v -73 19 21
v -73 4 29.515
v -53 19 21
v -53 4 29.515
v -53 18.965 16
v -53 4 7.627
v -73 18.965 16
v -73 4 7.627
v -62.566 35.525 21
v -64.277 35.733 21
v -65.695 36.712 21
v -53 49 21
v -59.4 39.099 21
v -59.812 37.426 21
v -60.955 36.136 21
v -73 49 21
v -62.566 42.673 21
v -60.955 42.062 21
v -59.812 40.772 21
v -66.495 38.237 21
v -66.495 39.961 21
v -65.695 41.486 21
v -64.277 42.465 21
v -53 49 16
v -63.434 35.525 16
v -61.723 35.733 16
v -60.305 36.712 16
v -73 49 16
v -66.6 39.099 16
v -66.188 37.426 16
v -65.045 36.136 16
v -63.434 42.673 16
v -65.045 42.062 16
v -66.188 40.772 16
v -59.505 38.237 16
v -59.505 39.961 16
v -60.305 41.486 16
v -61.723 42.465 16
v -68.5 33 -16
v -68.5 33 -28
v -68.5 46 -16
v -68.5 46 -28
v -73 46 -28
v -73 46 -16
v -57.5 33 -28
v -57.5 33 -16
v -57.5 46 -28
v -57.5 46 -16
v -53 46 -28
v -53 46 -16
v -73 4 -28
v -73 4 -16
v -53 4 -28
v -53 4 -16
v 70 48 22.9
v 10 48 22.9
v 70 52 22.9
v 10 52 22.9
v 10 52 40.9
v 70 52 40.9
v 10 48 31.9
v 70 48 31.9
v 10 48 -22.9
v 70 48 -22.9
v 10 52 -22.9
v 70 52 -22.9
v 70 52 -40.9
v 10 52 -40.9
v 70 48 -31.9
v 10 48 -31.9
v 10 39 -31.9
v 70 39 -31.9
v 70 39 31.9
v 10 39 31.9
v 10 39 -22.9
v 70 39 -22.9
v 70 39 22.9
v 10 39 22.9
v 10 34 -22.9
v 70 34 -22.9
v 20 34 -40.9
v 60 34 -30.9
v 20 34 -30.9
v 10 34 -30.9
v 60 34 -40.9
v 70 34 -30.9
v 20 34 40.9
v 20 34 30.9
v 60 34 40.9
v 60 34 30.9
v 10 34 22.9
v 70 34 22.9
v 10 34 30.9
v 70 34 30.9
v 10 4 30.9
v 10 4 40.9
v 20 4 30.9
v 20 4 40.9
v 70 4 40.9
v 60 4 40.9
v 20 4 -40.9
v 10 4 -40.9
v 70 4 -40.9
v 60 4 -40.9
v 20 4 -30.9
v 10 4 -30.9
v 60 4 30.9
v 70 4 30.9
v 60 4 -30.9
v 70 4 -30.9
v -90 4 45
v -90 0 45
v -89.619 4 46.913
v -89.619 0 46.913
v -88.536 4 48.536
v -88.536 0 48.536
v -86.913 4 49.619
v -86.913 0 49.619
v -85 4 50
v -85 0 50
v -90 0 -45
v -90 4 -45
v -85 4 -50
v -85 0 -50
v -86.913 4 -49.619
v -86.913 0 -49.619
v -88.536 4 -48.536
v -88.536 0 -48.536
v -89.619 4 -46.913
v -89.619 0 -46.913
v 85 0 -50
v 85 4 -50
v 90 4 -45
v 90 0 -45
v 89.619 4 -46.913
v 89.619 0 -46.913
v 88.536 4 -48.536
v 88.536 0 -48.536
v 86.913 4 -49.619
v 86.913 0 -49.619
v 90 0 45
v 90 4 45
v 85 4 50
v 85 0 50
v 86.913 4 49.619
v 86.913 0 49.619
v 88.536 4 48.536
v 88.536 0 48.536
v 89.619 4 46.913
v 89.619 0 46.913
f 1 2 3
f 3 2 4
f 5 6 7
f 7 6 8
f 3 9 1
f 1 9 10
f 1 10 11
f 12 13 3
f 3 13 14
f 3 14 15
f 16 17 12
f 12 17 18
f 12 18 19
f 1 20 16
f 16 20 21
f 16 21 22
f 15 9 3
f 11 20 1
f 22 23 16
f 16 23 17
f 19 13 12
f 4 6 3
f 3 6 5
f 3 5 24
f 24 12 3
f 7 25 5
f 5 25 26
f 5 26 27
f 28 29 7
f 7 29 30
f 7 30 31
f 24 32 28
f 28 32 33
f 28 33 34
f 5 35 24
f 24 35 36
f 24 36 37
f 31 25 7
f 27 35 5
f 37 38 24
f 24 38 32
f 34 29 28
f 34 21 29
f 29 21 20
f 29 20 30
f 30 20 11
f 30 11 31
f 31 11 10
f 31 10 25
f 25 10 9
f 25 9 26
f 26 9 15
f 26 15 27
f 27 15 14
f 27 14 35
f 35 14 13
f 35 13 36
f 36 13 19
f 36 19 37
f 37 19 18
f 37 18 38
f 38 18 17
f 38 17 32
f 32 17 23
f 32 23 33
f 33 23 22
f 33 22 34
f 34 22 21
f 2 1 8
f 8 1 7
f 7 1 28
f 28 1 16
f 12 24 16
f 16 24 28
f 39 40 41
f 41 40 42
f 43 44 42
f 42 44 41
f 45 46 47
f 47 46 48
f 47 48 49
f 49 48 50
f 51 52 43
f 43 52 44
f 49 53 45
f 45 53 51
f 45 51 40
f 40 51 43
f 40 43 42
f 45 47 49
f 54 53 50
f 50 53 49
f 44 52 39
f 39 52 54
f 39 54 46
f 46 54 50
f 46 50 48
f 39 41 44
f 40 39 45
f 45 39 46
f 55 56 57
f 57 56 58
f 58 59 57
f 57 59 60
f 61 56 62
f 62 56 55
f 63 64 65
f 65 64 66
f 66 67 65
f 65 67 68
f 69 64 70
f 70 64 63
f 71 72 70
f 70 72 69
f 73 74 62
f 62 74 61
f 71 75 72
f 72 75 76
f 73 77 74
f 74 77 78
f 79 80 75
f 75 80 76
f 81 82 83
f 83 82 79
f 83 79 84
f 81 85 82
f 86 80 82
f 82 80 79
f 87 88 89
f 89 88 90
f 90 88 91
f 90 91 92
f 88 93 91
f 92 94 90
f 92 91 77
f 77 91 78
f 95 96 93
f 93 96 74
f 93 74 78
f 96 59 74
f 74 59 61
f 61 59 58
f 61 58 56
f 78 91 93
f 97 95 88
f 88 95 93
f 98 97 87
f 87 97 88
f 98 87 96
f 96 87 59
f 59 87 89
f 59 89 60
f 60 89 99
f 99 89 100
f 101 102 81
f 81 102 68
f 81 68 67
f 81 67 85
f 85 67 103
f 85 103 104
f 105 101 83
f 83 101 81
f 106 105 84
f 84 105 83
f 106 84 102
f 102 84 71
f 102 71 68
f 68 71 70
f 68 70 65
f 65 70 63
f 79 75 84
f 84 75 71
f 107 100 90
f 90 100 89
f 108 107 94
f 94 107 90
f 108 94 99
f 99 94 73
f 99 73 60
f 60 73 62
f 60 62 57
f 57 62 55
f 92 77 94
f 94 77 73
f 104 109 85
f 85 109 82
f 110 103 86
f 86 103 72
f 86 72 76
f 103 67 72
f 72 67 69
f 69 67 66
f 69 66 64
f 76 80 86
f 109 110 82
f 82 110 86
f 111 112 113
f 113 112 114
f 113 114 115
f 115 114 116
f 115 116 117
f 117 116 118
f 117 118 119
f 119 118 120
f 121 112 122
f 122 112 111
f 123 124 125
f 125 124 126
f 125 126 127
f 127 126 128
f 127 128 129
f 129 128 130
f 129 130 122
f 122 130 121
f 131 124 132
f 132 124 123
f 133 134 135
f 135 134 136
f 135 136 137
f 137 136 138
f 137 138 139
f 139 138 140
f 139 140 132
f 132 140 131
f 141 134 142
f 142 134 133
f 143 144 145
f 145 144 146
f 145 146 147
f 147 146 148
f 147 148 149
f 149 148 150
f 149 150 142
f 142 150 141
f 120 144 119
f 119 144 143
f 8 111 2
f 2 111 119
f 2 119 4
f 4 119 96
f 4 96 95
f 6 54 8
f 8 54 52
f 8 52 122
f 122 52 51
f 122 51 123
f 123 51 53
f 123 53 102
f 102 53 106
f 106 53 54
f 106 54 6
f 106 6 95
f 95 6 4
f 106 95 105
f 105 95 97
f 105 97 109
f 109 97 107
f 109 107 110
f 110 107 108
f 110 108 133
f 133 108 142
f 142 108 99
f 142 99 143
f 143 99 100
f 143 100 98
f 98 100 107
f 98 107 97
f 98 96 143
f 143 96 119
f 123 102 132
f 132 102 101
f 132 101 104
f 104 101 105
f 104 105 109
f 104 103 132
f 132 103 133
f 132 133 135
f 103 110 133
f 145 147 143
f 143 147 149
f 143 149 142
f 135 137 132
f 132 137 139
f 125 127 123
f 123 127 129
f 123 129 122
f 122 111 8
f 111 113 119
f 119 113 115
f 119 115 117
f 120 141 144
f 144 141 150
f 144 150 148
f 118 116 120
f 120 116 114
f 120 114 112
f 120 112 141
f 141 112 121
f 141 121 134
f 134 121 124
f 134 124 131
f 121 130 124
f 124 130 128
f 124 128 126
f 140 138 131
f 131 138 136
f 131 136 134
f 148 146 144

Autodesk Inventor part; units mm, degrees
ref_plane "YZ Plane" through (0, 0, 0) normal (1, 0, 0) x (0, 1, 0)
ref_plane "XZ Plane" through (0, 0, 0) normal (0, 1, 0) x (-1, 0, 0)
ref_plane "XY Plane" through (0, 0, 0) normal (0, 0, 1) x (1, 0, 0)
sketch "草图1" plane through (0, 0, 0) normal (0, 1, 0) x (-1, 0, 0)
  line L0 (85, -50) -> (-85, -50)
  line L1 (-90, -45) -> (-90, 45)
  line L2 (-85, 50) -> (85, 50)
  line L3 (90, 45) -> (90, -45)
  line L4 (0, 0) -> (0, -30.3694)
  line L5 (0, 0) -> (-59.6627, 0)
  arc A0 (85, -50) -> (90, -45) centre (85, -45) ccw
  arc A1 (90, 45) -> (85, 50) centre (85, 45) ccw
  arc A2 (-85, 50) -> (-90, 45) centre (-85, 45) ccw
  arc A3 (-90, -45) -> (-85, -50) centre (-85, -45) ccw
  point P0 (90, -50)
  point P1 (-90, 50)
  point P2 (-90, -50)
  dimension "d0" = 180
  dimension "d1" = 100
  dimension "d2" = 5
extrude "拉伸1" add sketch "草图1" along normal blind 4
sketch "草图2" plane through (0, 4, 0) normal (0, 1, 0) x (1, 0, 0)
  line L0 (20, 40.9) -> (10, 40.9)
  line L1 (10, 40.9) -> (10, 30.9)
  line L2 (10, 30.9) -> (20, 30.9)
  line L3 (20, 30.9) -> (20, 40.9)
  line L4 (60, 40.9) -> (70, 40.9)
  line L5 (70, 40.9) -> (70, 30.9)
  line L6 (70, 30.9) -> (60, 30.9)
  line L7 (60, 30.9) -> (60, 40.9)
  line L8 (60, -30.9) -> (70, -30.9)
  line L9 (70, -30.9) -> (70, -40.9)
  line L10 (70, -40.9) -> (60, -40.9)
  line L11 (60, -40.9) -> (60, -30.9)
  line L12 (10, -30.9) -> (20, -30.9)
  line L13 (20, -30.9) -> (20, -40.9)
  line L14 (20, -40.9) -> (10, -40.9)
  line L15 (10, -40.9) -> (10, -30.9)
  line L16 (0, 0) -> (216.0528, 0)
  line L17 (0, 0) -> (0, -71.0339)
  dimension "d5" = 61.8
  dimension "d6" = 10
  dimension "d7" = 10
  dimension "d8" = 40
  dimension "d9" = 20
extrude "拉伸2" add sketch "草图2" along normal blind 30
sketch "草图3" plane through (0, 34, 0) normal (0, 1, 0) x (1, 0, 0)
  line L0 (60, 30.9) -> (70, 30.9) projected
  line L1 (70, 30.9) -> (70, 40.9) projected
  line L2 (70, 30.9) -> (70, 40.9)
  line L3 (10, 40.9) -> (10, 30.9) projected
  line L4 (70, 40.9) -> (10, 40.9)
  line L5 (10, 40.9) -> (10, 30.9)
  line L6 (10, -30.9) -> (10, -40.9)
  line L7 (60, -40.9) -> (70, -40.9) projected
  line L8 (10, -40.9) -> (70, -40.9)
  line L9 (70, -30.9) -> (70, -40.9) projected
  line L10 (70, -40.9) -> (70, -30.9)
  line L11 (70, 40.9) -> (70, 30.9) projected
  line L12 (70, 30.9) -> (70, 22.9)
  line L13 (70, 22.9) -> (10, 22.9)
  line L14 (10, 22.9) -> (10, 30.9)
  line L15 (70, -40.9) -> (70, -30.9) projected
  line L16 (70, -30.9) -> (70, -22.9)
  line L17 (70, -22.9) -> (10, -22.9)
  line L18 (10, -22.9) -> (10, -30.9)
  point P0 (0, 0)
  dimension "d14" = 18
  dimension "d15" = 18
extrude "拉伸3" add sketch "草图3" along normal blind 5
sketch "草图4" plane through (0, 39, 0) normal (0, 1, 0) x (1, 0, 0)
  line L0 (70, 40.9) -> (10, 40.9) projected
  line L1 (10, 40.9) -> (70, 40.9)
  line L2 (70, 40.9) -> (70, 31.9)
  line L3 (70, 22.9) -> (70, 40.9) projected
  line L4 (70, 31.9) -> (10, 31.9)
  line L5 (10, 31.9) -> (10, 40.9)
  line L6 (70, -30.9) -> (70, -40.9) projected
  line L7 (10, -22.9) -> (10, -40.9) projected
  line L8 (70, -40.9) -> (10, -40.9)
  line L9 (10, -40.9) -> (10, -31.9)
  line L10 (10, -31.9) -> (70, -31.9)
  line L11 (70, -31.9) -> (70, -40.9)
  point P0 (0, 0)
extrude "拉伸4" add sketch "草图4" along normal blind 9
sketch "草图5" plane through (0, 48, 0) normal (0, 1, 0) x (1, 0, 0)
  line L0 (10, 40.9) -> (20, 40.9) projected
  line L1 (10, 30.9) -> (10, 22.9) projected
  line L2 (10, 40.9) -> (10, 22.9)
  line L3 (70, 22.9) -> (70, 30.9) projected
  line L4 (10, 22.9) -> (70, 22.9)
  line L5 (70, 40.9) -> (70, 30.9) projected
  line L6 (70, 22.9) -> (70, 40.9)
  line L7 (70, 40.9) -> (10, 40.9)
  line L8 (10, -22.9) -> (70, -22.9)
  line L9 (70, -40.9) -> (60, -40.9) projected
  line L10 (70, -22.9) -> (70, -40.9)
  line L11 (20, -40.9) -> (10, -40.9) projected
  line L12 (70, -40.9) -> (10, -40.9)
  line L13 (10, -40.9) -> (10, -22.9)
  point P0 (0, 0)
extrude "拉伸5" add sketch "草图5" along normal blind 4
sketch "草图6" plane through (0, 4, 0) normal (0, 1, 0) x (1, 0, 0)
  line L0 (-73, 28) -> (-73, 16)
  line L1 (-73, 16) -> (-53, 16)
  line L2 (-53, 16) -> (-53, 28)
  line L3 (-53, 28) -> (-73, 28)
  line L4 (-90, 45) -> (-90, -45) projected
  line L5 (85, 50) -> (-85, 50) projected
  point P0 (0, 0)
  dimension "d20" = 17
  dimension "d21" = 20
  dimension "d22" = 12
  dimension "d23" = 22
extrude "拉伸6" add sketch "草图6" along normal blind 29
sketch "草图7" plane through (0, 33, 0) normal (0, 1, 0) x (1, 0, 0)
  line L0 (-53, 28) -> (-53, 16) projected
  line L1 (-53, 28) -> (-53, 16)
  line L2 (-53, 16) -> (-57.5, 16)
  line L3 (-53, 16) -> (-73, 16) projected
  line L4 (-57.5, 16) -> (-57.5, 28)
  line L5 (-53, 28) -> (-73, 28) projected
  line L6 (-57.5, 28) -> (-53, 28)
  line L7 (-73, 16) -> (-73, 28) projected
  line L8 (-73, 28) -> (-73, 16)
  line L9 (-73, 16) -> (-68.5, 16)
  line L10 (-68.5, 16) -> (-68.5, 28)
  line L11 (-73, 28) -> (-68.5, 28)
  point P0 (0, 0)
  dimension "d26" = 4.5
  dimension "d27" = 4.5
extrude "拉伸7" add sketch "草图7" along normal blind 13 contours L0 L2 L4 L5 | L10 L3 L7 L5
sketch "草图8" plane through (0, 4, 0) normal (0, 1, 0) x (1, 0, 0)
  line L0 (-73, -21) -> (-53, -21)
  line L1 (-73, 16) -> (-68.5, 16) projected
  line L2 (-73, -21) -> (-73, -16)
  line L3 (-73, -16) -> (-53, -16)
  line L4 (-53, -16) -> (-53, -21)
  line L5 (-73, 28) -> (-73, 16) projected
  point P0 (0, 0)
  dimension "d30" = 37
  dimension "d31" = 5
  dimension "d32" = 20
extrude "拉伸8" add sketch "草图8" along normal blind 45
sketch "草图9" plane through (-73, 4, 21) normal (0, 0, 1) x (1, 0, 0)
  circle A0 centre (10, 35.099) radius 3.6
  line L0 (20, 45) -> (0, 45) projected
  line L1 (10, 45) -> (10, 16.6489)
  line L2 (-12, 0) -> (158, 0) projected
  point P0 (73, -4)
  dimension "d35" = 7.2
  dimension "d36" = 35.099
extrude "拉伸9" cut sketch "草图9" against normal blind 10
sketch "草图10" plane through (-73, 4, 16) normal (-1, 0, 0) x (0, 0, 1)
  line L0 (0.0194, -1.086) -> (0.0194, 15)
  line L1 (0.0194, 15) -> (-8.9806, -1.086)
  line L2 (-8.9806, -1.086) -> (0.0194, -1.086)
  line L3 (5.1314, -1.086) -> (14.1314, -1.086)
  line L4 (14.1314, -1.086) -> (5, 15)
  line L5 (5, 15) -> (5, 0)
  line L6 (5, 0) -> (13.5149, 0)
  point P0 (-16, -4)
  dimension "d39" = 9
  dimension "d40" = 9
  dimension "d41" = 15
extrude "拉伸11" add sketch "草图10" against normal blind 20
properties part number "机架"
